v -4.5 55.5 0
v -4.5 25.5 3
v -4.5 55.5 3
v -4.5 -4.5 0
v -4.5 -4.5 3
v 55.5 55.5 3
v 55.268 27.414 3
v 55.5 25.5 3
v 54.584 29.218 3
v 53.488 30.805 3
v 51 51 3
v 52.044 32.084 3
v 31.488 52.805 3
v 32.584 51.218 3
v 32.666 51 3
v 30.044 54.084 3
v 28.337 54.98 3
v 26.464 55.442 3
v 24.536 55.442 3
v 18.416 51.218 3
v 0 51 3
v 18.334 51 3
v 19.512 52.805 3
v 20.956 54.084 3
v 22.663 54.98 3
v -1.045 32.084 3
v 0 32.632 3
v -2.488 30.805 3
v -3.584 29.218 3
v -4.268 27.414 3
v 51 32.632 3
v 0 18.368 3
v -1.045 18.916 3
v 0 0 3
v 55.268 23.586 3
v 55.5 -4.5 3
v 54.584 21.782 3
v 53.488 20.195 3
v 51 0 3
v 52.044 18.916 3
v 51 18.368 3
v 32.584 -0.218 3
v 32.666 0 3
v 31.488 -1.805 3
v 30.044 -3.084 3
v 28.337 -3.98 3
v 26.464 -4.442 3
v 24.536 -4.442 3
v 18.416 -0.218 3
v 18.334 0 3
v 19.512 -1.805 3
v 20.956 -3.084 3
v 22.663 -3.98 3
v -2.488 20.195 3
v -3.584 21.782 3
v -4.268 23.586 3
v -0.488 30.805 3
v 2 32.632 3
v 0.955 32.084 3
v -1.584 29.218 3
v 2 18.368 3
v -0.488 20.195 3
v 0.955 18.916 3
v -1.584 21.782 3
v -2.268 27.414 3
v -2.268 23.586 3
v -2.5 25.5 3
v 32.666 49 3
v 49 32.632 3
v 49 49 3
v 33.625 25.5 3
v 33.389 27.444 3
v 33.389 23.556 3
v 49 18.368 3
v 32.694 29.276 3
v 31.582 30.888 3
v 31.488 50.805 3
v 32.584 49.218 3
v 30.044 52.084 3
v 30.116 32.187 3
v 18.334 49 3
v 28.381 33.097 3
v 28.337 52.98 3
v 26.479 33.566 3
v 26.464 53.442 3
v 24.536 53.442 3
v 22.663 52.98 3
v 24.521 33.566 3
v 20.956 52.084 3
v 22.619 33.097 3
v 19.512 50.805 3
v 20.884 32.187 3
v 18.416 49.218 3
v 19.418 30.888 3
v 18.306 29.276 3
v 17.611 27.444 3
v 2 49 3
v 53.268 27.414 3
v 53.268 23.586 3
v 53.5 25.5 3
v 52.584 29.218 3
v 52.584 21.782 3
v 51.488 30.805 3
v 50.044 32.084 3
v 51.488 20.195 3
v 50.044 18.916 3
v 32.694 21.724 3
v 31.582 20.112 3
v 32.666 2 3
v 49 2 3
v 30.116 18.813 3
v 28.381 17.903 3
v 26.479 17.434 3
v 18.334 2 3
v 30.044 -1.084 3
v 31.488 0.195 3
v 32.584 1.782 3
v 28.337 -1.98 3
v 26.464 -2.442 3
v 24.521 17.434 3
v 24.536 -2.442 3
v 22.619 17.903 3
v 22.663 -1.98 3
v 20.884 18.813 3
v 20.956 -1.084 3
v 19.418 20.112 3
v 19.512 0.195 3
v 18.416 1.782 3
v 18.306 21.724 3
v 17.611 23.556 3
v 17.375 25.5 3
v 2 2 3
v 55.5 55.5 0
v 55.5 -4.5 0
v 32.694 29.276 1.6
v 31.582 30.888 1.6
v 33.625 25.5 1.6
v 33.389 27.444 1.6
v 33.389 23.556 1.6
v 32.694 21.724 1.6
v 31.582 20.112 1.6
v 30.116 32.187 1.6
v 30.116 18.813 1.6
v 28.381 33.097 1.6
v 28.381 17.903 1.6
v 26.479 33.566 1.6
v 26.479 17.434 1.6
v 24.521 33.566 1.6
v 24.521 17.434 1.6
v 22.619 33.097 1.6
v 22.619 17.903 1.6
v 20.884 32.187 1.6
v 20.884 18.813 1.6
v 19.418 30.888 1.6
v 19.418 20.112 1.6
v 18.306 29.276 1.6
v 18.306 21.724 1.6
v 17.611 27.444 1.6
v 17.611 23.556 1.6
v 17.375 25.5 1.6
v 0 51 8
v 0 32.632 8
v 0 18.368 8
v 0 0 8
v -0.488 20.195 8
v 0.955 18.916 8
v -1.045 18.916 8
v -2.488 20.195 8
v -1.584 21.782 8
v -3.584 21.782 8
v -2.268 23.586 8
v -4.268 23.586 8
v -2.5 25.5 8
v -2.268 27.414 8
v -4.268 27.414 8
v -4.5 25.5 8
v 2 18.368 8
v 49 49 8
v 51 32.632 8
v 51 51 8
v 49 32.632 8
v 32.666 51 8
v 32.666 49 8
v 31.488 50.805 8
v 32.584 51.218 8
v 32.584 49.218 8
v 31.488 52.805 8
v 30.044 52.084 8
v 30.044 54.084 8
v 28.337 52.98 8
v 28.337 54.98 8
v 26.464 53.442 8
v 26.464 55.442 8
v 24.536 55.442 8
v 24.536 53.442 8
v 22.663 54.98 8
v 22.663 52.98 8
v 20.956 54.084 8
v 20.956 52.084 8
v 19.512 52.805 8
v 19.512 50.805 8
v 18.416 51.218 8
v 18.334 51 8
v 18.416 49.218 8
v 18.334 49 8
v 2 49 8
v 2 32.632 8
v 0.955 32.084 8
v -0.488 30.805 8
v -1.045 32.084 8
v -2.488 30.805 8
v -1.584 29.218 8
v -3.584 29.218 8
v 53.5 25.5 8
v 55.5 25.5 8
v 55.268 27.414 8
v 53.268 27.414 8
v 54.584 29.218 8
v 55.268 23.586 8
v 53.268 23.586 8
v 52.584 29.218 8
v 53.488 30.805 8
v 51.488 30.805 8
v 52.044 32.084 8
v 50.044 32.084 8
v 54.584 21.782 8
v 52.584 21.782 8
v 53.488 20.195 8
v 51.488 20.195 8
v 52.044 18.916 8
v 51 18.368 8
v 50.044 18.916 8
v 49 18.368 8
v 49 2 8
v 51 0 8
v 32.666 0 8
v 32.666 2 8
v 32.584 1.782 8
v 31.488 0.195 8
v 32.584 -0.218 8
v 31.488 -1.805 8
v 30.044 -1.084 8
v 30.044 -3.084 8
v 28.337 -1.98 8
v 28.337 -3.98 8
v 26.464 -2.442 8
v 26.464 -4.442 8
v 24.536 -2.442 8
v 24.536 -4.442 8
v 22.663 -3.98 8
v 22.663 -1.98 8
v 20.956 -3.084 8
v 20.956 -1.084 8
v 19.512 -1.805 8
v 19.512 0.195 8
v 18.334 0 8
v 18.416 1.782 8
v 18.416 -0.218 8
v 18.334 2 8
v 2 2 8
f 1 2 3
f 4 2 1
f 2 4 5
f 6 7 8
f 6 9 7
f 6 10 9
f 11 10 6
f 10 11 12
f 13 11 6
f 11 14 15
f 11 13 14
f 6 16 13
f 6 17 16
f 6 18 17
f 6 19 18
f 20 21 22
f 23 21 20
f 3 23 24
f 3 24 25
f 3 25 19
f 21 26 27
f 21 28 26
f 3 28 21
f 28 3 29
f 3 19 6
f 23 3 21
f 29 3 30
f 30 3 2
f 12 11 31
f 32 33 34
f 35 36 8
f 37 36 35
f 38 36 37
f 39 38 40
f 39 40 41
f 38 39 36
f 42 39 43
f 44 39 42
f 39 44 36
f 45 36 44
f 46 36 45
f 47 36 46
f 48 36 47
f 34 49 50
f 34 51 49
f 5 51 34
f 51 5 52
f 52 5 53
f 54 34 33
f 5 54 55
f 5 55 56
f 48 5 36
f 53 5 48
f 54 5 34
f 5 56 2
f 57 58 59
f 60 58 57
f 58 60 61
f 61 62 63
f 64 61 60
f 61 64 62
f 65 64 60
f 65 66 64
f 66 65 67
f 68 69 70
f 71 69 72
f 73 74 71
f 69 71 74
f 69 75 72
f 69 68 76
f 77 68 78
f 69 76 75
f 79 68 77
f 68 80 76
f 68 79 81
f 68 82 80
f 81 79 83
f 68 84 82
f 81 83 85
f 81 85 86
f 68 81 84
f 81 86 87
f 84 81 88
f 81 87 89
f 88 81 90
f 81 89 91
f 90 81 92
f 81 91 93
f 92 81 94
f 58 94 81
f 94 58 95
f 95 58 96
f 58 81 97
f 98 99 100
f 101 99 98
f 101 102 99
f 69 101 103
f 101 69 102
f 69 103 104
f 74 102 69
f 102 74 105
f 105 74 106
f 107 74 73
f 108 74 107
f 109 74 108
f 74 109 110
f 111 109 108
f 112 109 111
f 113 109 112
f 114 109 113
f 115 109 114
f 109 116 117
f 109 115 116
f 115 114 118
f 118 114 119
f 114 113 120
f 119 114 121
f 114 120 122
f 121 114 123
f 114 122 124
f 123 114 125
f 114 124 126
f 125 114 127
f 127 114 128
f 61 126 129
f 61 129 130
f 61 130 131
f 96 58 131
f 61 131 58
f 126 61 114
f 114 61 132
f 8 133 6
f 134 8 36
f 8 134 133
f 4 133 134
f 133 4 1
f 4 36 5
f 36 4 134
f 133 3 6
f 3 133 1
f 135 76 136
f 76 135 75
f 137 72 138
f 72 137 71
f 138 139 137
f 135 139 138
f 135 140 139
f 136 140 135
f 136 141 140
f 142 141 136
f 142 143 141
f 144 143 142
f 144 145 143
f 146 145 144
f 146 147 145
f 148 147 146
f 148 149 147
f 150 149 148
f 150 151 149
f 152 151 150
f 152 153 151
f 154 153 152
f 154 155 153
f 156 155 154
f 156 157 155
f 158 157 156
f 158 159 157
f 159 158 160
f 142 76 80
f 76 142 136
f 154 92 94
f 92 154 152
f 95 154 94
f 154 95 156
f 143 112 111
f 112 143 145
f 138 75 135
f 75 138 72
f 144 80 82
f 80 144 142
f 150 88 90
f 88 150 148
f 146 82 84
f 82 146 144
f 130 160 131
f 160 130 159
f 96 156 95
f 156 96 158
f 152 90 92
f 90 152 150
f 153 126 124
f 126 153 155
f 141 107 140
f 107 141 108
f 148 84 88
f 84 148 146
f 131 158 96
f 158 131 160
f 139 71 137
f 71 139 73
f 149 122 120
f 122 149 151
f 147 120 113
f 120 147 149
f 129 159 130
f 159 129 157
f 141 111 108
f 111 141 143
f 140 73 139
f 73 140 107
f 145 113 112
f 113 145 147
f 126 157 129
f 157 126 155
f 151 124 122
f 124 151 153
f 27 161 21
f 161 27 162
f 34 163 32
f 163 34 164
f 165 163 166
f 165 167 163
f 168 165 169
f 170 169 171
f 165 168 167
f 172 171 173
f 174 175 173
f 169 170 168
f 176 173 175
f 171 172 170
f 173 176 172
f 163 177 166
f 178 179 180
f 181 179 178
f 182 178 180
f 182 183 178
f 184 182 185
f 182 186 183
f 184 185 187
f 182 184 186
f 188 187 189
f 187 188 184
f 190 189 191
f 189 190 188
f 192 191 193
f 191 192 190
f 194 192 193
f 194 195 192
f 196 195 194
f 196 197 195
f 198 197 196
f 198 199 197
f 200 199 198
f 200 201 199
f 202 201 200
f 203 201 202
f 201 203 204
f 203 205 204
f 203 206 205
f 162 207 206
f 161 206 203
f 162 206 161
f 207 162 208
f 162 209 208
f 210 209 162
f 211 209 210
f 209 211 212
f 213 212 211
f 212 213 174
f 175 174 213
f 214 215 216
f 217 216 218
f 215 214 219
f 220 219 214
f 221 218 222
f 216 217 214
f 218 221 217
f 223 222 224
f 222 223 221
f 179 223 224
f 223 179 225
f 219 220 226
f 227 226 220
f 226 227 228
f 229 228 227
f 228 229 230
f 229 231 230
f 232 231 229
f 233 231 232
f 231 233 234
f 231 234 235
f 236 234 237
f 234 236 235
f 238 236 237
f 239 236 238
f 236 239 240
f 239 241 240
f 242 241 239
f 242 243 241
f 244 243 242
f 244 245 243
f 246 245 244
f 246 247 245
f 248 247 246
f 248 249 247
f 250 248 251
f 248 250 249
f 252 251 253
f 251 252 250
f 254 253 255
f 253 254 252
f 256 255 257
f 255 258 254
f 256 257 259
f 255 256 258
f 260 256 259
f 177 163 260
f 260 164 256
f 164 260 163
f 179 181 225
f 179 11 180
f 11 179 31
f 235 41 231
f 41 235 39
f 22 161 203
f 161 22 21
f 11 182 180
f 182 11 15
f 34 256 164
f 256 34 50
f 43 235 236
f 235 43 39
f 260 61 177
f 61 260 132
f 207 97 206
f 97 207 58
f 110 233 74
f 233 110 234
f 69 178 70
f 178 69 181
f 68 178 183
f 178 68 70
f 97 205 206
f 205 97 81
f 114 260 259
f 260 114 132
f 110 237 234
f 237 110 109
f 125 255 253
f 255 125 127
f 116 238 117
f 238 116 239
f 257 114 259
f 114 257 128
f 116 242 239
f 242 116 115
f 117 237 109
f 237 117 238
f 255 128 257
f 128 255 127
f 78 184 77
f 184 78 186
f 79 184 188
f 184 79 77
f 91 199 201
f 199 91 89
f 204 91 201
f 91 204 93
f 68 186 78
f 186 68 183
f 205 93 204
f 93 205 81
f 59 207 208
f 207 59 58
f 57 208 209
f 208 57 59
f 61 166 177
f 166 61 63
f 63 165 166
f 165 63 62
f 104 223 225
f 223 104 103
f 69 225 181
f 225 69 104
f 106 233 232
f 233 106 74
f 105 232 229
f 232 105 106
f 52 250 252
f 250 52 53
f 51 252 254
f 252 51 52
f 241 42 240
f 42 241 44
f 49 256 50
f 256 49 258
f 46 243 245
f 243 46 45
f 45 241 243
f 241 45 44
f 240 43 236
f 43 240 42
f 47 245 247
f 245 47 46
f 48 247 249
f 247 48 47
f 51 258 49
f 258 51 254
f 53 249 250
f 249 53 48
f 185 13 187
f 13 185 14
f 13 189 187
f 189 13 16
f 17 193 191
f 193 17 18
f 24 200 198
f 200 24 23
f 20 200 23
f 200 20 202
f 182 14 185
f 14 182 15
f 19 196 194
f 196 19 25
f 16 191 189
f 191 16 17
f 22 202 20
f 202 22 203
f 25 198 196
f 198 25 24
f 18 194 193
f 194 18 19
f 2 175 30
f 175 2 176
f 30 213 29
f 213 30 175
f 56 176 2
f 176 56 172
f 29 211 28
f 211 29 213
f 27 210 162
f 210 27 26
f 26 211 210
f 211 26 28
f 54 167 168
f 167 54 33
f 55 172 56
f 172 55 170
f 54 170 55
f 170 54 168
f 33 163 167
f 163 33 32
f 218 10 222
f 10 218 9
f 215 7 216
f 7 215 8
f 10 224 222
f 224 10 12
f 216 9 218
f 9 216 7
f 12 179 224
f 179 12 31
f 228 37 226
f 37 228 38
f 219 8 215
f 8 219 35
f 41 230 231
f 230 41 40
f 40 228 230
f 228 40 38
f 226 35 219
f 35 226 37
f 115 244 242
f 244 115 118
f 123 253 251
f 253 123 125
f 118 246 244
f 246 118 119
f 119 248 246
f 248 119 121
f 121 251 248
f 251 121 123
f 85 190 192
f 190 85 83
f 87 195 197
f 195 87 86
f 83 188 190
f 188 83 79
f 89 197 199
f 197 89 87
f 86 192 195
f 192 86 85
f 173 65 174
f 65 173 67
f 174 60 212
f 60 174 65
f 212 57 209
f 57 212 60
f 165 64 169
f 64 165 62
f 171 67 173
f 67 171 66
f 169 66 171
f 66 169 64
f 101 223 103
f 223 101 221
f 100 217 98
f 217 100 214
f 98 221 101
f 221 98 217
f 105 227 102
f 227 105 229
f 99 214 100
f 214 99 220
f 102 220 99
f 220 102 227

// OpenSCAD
length = 46;
width = 46;
height = 3;
rimHeight = 5;
rimThickness = 2;
notchLength = 25;
//Based on washer size:
washerDiameter = 16.25;
washerHeight = 1.4;
rimPadding = 1;
totalHeight = height + rimHeight;

totalLength = length + rimThickness * 2 + rimPadding;
totalWidth = width + rimThickness * 2 + rimPadding;
extraLidForCircles = 4.5;

smallCircleOffset = 2.5;
smallCircleDiameter = 16;
union()
{
    difference() {
        translate([-extraLidForCircles, -extraLidForCircles, 0])
            cube([totalLength + 2 * extraLidForCircles, totalWidth + 2 * extraLidForCircles, height]);
        translate([totalLength/2, totalWidth/2, height - washerHeight])
            cylinder(washerHeight, d=washerDiameter);
    }
    
    difference() {
        translate([0, 0, height])
            cube([totalLength, totalWidth, rimHeight]);
        translate([rimThickness, rimThickness, height])
            cube([length + rimPadding, width + rimPadding, rimHeight]);
        LengthCircles();
        translate([0, totalWidth - 2 * (smallCircleDiameter/2 - smallCircleOffset), 0])
            LengthCircles();
        WidthCircles();
        translate([totalLength - 2 * (smallCircleDiameter/2 - smallCircleOffset), 0, 0])
            WidthCircles();
    }
    
    difference(){
        union()
        {
            translate([0, -rimThickness, 0])
                LengthCircles();
            translate([0, totalWidth - 2 * (smallCircleDiameter/2 - smallCircleOffset) + rimThickness, 0])
                LengthCircles();
            translate([-rimThickness, 0, 0])
                WidthCircles();
            translate([totalLength - 2 * (smallCircleDiameter/2 - smallCircleOffset) + rimThickness, 0, 0])
                WidthCircles();
        }
        translate([0, 0, height])
            cube([totalLength, totalWidth, rimHeight]);
        LengthCircles();
        translate([0, totalWidth - 2 * (smallCircleDiameter/2 - smallCircleOffset), 0])
            LengthCircles();
        WidthCircles();
        translate([totalLength - 2 * (smallCircleDiameter/2 - smallCircleOffset), 0, 0])
            WidthCircles();
    }
}


module LengthCircles()
{

spaceBetweenCircles = 3;
    

    translate([
        totalLength /2,
        smallCircleDiameter/2 - smallCircleOffset,
        height])
        cylinder(rimHeight, d=smallCircleDiameter);
    
    
}


module WidthCircles()
{
    spaceBetweenCircles = 3;
    
    translate([smallCircleDiameter/2 - smallCircleOffset, totalWidth/2, height])
        cylinder(rimHeight, d=smallCircleDiameter);
}
